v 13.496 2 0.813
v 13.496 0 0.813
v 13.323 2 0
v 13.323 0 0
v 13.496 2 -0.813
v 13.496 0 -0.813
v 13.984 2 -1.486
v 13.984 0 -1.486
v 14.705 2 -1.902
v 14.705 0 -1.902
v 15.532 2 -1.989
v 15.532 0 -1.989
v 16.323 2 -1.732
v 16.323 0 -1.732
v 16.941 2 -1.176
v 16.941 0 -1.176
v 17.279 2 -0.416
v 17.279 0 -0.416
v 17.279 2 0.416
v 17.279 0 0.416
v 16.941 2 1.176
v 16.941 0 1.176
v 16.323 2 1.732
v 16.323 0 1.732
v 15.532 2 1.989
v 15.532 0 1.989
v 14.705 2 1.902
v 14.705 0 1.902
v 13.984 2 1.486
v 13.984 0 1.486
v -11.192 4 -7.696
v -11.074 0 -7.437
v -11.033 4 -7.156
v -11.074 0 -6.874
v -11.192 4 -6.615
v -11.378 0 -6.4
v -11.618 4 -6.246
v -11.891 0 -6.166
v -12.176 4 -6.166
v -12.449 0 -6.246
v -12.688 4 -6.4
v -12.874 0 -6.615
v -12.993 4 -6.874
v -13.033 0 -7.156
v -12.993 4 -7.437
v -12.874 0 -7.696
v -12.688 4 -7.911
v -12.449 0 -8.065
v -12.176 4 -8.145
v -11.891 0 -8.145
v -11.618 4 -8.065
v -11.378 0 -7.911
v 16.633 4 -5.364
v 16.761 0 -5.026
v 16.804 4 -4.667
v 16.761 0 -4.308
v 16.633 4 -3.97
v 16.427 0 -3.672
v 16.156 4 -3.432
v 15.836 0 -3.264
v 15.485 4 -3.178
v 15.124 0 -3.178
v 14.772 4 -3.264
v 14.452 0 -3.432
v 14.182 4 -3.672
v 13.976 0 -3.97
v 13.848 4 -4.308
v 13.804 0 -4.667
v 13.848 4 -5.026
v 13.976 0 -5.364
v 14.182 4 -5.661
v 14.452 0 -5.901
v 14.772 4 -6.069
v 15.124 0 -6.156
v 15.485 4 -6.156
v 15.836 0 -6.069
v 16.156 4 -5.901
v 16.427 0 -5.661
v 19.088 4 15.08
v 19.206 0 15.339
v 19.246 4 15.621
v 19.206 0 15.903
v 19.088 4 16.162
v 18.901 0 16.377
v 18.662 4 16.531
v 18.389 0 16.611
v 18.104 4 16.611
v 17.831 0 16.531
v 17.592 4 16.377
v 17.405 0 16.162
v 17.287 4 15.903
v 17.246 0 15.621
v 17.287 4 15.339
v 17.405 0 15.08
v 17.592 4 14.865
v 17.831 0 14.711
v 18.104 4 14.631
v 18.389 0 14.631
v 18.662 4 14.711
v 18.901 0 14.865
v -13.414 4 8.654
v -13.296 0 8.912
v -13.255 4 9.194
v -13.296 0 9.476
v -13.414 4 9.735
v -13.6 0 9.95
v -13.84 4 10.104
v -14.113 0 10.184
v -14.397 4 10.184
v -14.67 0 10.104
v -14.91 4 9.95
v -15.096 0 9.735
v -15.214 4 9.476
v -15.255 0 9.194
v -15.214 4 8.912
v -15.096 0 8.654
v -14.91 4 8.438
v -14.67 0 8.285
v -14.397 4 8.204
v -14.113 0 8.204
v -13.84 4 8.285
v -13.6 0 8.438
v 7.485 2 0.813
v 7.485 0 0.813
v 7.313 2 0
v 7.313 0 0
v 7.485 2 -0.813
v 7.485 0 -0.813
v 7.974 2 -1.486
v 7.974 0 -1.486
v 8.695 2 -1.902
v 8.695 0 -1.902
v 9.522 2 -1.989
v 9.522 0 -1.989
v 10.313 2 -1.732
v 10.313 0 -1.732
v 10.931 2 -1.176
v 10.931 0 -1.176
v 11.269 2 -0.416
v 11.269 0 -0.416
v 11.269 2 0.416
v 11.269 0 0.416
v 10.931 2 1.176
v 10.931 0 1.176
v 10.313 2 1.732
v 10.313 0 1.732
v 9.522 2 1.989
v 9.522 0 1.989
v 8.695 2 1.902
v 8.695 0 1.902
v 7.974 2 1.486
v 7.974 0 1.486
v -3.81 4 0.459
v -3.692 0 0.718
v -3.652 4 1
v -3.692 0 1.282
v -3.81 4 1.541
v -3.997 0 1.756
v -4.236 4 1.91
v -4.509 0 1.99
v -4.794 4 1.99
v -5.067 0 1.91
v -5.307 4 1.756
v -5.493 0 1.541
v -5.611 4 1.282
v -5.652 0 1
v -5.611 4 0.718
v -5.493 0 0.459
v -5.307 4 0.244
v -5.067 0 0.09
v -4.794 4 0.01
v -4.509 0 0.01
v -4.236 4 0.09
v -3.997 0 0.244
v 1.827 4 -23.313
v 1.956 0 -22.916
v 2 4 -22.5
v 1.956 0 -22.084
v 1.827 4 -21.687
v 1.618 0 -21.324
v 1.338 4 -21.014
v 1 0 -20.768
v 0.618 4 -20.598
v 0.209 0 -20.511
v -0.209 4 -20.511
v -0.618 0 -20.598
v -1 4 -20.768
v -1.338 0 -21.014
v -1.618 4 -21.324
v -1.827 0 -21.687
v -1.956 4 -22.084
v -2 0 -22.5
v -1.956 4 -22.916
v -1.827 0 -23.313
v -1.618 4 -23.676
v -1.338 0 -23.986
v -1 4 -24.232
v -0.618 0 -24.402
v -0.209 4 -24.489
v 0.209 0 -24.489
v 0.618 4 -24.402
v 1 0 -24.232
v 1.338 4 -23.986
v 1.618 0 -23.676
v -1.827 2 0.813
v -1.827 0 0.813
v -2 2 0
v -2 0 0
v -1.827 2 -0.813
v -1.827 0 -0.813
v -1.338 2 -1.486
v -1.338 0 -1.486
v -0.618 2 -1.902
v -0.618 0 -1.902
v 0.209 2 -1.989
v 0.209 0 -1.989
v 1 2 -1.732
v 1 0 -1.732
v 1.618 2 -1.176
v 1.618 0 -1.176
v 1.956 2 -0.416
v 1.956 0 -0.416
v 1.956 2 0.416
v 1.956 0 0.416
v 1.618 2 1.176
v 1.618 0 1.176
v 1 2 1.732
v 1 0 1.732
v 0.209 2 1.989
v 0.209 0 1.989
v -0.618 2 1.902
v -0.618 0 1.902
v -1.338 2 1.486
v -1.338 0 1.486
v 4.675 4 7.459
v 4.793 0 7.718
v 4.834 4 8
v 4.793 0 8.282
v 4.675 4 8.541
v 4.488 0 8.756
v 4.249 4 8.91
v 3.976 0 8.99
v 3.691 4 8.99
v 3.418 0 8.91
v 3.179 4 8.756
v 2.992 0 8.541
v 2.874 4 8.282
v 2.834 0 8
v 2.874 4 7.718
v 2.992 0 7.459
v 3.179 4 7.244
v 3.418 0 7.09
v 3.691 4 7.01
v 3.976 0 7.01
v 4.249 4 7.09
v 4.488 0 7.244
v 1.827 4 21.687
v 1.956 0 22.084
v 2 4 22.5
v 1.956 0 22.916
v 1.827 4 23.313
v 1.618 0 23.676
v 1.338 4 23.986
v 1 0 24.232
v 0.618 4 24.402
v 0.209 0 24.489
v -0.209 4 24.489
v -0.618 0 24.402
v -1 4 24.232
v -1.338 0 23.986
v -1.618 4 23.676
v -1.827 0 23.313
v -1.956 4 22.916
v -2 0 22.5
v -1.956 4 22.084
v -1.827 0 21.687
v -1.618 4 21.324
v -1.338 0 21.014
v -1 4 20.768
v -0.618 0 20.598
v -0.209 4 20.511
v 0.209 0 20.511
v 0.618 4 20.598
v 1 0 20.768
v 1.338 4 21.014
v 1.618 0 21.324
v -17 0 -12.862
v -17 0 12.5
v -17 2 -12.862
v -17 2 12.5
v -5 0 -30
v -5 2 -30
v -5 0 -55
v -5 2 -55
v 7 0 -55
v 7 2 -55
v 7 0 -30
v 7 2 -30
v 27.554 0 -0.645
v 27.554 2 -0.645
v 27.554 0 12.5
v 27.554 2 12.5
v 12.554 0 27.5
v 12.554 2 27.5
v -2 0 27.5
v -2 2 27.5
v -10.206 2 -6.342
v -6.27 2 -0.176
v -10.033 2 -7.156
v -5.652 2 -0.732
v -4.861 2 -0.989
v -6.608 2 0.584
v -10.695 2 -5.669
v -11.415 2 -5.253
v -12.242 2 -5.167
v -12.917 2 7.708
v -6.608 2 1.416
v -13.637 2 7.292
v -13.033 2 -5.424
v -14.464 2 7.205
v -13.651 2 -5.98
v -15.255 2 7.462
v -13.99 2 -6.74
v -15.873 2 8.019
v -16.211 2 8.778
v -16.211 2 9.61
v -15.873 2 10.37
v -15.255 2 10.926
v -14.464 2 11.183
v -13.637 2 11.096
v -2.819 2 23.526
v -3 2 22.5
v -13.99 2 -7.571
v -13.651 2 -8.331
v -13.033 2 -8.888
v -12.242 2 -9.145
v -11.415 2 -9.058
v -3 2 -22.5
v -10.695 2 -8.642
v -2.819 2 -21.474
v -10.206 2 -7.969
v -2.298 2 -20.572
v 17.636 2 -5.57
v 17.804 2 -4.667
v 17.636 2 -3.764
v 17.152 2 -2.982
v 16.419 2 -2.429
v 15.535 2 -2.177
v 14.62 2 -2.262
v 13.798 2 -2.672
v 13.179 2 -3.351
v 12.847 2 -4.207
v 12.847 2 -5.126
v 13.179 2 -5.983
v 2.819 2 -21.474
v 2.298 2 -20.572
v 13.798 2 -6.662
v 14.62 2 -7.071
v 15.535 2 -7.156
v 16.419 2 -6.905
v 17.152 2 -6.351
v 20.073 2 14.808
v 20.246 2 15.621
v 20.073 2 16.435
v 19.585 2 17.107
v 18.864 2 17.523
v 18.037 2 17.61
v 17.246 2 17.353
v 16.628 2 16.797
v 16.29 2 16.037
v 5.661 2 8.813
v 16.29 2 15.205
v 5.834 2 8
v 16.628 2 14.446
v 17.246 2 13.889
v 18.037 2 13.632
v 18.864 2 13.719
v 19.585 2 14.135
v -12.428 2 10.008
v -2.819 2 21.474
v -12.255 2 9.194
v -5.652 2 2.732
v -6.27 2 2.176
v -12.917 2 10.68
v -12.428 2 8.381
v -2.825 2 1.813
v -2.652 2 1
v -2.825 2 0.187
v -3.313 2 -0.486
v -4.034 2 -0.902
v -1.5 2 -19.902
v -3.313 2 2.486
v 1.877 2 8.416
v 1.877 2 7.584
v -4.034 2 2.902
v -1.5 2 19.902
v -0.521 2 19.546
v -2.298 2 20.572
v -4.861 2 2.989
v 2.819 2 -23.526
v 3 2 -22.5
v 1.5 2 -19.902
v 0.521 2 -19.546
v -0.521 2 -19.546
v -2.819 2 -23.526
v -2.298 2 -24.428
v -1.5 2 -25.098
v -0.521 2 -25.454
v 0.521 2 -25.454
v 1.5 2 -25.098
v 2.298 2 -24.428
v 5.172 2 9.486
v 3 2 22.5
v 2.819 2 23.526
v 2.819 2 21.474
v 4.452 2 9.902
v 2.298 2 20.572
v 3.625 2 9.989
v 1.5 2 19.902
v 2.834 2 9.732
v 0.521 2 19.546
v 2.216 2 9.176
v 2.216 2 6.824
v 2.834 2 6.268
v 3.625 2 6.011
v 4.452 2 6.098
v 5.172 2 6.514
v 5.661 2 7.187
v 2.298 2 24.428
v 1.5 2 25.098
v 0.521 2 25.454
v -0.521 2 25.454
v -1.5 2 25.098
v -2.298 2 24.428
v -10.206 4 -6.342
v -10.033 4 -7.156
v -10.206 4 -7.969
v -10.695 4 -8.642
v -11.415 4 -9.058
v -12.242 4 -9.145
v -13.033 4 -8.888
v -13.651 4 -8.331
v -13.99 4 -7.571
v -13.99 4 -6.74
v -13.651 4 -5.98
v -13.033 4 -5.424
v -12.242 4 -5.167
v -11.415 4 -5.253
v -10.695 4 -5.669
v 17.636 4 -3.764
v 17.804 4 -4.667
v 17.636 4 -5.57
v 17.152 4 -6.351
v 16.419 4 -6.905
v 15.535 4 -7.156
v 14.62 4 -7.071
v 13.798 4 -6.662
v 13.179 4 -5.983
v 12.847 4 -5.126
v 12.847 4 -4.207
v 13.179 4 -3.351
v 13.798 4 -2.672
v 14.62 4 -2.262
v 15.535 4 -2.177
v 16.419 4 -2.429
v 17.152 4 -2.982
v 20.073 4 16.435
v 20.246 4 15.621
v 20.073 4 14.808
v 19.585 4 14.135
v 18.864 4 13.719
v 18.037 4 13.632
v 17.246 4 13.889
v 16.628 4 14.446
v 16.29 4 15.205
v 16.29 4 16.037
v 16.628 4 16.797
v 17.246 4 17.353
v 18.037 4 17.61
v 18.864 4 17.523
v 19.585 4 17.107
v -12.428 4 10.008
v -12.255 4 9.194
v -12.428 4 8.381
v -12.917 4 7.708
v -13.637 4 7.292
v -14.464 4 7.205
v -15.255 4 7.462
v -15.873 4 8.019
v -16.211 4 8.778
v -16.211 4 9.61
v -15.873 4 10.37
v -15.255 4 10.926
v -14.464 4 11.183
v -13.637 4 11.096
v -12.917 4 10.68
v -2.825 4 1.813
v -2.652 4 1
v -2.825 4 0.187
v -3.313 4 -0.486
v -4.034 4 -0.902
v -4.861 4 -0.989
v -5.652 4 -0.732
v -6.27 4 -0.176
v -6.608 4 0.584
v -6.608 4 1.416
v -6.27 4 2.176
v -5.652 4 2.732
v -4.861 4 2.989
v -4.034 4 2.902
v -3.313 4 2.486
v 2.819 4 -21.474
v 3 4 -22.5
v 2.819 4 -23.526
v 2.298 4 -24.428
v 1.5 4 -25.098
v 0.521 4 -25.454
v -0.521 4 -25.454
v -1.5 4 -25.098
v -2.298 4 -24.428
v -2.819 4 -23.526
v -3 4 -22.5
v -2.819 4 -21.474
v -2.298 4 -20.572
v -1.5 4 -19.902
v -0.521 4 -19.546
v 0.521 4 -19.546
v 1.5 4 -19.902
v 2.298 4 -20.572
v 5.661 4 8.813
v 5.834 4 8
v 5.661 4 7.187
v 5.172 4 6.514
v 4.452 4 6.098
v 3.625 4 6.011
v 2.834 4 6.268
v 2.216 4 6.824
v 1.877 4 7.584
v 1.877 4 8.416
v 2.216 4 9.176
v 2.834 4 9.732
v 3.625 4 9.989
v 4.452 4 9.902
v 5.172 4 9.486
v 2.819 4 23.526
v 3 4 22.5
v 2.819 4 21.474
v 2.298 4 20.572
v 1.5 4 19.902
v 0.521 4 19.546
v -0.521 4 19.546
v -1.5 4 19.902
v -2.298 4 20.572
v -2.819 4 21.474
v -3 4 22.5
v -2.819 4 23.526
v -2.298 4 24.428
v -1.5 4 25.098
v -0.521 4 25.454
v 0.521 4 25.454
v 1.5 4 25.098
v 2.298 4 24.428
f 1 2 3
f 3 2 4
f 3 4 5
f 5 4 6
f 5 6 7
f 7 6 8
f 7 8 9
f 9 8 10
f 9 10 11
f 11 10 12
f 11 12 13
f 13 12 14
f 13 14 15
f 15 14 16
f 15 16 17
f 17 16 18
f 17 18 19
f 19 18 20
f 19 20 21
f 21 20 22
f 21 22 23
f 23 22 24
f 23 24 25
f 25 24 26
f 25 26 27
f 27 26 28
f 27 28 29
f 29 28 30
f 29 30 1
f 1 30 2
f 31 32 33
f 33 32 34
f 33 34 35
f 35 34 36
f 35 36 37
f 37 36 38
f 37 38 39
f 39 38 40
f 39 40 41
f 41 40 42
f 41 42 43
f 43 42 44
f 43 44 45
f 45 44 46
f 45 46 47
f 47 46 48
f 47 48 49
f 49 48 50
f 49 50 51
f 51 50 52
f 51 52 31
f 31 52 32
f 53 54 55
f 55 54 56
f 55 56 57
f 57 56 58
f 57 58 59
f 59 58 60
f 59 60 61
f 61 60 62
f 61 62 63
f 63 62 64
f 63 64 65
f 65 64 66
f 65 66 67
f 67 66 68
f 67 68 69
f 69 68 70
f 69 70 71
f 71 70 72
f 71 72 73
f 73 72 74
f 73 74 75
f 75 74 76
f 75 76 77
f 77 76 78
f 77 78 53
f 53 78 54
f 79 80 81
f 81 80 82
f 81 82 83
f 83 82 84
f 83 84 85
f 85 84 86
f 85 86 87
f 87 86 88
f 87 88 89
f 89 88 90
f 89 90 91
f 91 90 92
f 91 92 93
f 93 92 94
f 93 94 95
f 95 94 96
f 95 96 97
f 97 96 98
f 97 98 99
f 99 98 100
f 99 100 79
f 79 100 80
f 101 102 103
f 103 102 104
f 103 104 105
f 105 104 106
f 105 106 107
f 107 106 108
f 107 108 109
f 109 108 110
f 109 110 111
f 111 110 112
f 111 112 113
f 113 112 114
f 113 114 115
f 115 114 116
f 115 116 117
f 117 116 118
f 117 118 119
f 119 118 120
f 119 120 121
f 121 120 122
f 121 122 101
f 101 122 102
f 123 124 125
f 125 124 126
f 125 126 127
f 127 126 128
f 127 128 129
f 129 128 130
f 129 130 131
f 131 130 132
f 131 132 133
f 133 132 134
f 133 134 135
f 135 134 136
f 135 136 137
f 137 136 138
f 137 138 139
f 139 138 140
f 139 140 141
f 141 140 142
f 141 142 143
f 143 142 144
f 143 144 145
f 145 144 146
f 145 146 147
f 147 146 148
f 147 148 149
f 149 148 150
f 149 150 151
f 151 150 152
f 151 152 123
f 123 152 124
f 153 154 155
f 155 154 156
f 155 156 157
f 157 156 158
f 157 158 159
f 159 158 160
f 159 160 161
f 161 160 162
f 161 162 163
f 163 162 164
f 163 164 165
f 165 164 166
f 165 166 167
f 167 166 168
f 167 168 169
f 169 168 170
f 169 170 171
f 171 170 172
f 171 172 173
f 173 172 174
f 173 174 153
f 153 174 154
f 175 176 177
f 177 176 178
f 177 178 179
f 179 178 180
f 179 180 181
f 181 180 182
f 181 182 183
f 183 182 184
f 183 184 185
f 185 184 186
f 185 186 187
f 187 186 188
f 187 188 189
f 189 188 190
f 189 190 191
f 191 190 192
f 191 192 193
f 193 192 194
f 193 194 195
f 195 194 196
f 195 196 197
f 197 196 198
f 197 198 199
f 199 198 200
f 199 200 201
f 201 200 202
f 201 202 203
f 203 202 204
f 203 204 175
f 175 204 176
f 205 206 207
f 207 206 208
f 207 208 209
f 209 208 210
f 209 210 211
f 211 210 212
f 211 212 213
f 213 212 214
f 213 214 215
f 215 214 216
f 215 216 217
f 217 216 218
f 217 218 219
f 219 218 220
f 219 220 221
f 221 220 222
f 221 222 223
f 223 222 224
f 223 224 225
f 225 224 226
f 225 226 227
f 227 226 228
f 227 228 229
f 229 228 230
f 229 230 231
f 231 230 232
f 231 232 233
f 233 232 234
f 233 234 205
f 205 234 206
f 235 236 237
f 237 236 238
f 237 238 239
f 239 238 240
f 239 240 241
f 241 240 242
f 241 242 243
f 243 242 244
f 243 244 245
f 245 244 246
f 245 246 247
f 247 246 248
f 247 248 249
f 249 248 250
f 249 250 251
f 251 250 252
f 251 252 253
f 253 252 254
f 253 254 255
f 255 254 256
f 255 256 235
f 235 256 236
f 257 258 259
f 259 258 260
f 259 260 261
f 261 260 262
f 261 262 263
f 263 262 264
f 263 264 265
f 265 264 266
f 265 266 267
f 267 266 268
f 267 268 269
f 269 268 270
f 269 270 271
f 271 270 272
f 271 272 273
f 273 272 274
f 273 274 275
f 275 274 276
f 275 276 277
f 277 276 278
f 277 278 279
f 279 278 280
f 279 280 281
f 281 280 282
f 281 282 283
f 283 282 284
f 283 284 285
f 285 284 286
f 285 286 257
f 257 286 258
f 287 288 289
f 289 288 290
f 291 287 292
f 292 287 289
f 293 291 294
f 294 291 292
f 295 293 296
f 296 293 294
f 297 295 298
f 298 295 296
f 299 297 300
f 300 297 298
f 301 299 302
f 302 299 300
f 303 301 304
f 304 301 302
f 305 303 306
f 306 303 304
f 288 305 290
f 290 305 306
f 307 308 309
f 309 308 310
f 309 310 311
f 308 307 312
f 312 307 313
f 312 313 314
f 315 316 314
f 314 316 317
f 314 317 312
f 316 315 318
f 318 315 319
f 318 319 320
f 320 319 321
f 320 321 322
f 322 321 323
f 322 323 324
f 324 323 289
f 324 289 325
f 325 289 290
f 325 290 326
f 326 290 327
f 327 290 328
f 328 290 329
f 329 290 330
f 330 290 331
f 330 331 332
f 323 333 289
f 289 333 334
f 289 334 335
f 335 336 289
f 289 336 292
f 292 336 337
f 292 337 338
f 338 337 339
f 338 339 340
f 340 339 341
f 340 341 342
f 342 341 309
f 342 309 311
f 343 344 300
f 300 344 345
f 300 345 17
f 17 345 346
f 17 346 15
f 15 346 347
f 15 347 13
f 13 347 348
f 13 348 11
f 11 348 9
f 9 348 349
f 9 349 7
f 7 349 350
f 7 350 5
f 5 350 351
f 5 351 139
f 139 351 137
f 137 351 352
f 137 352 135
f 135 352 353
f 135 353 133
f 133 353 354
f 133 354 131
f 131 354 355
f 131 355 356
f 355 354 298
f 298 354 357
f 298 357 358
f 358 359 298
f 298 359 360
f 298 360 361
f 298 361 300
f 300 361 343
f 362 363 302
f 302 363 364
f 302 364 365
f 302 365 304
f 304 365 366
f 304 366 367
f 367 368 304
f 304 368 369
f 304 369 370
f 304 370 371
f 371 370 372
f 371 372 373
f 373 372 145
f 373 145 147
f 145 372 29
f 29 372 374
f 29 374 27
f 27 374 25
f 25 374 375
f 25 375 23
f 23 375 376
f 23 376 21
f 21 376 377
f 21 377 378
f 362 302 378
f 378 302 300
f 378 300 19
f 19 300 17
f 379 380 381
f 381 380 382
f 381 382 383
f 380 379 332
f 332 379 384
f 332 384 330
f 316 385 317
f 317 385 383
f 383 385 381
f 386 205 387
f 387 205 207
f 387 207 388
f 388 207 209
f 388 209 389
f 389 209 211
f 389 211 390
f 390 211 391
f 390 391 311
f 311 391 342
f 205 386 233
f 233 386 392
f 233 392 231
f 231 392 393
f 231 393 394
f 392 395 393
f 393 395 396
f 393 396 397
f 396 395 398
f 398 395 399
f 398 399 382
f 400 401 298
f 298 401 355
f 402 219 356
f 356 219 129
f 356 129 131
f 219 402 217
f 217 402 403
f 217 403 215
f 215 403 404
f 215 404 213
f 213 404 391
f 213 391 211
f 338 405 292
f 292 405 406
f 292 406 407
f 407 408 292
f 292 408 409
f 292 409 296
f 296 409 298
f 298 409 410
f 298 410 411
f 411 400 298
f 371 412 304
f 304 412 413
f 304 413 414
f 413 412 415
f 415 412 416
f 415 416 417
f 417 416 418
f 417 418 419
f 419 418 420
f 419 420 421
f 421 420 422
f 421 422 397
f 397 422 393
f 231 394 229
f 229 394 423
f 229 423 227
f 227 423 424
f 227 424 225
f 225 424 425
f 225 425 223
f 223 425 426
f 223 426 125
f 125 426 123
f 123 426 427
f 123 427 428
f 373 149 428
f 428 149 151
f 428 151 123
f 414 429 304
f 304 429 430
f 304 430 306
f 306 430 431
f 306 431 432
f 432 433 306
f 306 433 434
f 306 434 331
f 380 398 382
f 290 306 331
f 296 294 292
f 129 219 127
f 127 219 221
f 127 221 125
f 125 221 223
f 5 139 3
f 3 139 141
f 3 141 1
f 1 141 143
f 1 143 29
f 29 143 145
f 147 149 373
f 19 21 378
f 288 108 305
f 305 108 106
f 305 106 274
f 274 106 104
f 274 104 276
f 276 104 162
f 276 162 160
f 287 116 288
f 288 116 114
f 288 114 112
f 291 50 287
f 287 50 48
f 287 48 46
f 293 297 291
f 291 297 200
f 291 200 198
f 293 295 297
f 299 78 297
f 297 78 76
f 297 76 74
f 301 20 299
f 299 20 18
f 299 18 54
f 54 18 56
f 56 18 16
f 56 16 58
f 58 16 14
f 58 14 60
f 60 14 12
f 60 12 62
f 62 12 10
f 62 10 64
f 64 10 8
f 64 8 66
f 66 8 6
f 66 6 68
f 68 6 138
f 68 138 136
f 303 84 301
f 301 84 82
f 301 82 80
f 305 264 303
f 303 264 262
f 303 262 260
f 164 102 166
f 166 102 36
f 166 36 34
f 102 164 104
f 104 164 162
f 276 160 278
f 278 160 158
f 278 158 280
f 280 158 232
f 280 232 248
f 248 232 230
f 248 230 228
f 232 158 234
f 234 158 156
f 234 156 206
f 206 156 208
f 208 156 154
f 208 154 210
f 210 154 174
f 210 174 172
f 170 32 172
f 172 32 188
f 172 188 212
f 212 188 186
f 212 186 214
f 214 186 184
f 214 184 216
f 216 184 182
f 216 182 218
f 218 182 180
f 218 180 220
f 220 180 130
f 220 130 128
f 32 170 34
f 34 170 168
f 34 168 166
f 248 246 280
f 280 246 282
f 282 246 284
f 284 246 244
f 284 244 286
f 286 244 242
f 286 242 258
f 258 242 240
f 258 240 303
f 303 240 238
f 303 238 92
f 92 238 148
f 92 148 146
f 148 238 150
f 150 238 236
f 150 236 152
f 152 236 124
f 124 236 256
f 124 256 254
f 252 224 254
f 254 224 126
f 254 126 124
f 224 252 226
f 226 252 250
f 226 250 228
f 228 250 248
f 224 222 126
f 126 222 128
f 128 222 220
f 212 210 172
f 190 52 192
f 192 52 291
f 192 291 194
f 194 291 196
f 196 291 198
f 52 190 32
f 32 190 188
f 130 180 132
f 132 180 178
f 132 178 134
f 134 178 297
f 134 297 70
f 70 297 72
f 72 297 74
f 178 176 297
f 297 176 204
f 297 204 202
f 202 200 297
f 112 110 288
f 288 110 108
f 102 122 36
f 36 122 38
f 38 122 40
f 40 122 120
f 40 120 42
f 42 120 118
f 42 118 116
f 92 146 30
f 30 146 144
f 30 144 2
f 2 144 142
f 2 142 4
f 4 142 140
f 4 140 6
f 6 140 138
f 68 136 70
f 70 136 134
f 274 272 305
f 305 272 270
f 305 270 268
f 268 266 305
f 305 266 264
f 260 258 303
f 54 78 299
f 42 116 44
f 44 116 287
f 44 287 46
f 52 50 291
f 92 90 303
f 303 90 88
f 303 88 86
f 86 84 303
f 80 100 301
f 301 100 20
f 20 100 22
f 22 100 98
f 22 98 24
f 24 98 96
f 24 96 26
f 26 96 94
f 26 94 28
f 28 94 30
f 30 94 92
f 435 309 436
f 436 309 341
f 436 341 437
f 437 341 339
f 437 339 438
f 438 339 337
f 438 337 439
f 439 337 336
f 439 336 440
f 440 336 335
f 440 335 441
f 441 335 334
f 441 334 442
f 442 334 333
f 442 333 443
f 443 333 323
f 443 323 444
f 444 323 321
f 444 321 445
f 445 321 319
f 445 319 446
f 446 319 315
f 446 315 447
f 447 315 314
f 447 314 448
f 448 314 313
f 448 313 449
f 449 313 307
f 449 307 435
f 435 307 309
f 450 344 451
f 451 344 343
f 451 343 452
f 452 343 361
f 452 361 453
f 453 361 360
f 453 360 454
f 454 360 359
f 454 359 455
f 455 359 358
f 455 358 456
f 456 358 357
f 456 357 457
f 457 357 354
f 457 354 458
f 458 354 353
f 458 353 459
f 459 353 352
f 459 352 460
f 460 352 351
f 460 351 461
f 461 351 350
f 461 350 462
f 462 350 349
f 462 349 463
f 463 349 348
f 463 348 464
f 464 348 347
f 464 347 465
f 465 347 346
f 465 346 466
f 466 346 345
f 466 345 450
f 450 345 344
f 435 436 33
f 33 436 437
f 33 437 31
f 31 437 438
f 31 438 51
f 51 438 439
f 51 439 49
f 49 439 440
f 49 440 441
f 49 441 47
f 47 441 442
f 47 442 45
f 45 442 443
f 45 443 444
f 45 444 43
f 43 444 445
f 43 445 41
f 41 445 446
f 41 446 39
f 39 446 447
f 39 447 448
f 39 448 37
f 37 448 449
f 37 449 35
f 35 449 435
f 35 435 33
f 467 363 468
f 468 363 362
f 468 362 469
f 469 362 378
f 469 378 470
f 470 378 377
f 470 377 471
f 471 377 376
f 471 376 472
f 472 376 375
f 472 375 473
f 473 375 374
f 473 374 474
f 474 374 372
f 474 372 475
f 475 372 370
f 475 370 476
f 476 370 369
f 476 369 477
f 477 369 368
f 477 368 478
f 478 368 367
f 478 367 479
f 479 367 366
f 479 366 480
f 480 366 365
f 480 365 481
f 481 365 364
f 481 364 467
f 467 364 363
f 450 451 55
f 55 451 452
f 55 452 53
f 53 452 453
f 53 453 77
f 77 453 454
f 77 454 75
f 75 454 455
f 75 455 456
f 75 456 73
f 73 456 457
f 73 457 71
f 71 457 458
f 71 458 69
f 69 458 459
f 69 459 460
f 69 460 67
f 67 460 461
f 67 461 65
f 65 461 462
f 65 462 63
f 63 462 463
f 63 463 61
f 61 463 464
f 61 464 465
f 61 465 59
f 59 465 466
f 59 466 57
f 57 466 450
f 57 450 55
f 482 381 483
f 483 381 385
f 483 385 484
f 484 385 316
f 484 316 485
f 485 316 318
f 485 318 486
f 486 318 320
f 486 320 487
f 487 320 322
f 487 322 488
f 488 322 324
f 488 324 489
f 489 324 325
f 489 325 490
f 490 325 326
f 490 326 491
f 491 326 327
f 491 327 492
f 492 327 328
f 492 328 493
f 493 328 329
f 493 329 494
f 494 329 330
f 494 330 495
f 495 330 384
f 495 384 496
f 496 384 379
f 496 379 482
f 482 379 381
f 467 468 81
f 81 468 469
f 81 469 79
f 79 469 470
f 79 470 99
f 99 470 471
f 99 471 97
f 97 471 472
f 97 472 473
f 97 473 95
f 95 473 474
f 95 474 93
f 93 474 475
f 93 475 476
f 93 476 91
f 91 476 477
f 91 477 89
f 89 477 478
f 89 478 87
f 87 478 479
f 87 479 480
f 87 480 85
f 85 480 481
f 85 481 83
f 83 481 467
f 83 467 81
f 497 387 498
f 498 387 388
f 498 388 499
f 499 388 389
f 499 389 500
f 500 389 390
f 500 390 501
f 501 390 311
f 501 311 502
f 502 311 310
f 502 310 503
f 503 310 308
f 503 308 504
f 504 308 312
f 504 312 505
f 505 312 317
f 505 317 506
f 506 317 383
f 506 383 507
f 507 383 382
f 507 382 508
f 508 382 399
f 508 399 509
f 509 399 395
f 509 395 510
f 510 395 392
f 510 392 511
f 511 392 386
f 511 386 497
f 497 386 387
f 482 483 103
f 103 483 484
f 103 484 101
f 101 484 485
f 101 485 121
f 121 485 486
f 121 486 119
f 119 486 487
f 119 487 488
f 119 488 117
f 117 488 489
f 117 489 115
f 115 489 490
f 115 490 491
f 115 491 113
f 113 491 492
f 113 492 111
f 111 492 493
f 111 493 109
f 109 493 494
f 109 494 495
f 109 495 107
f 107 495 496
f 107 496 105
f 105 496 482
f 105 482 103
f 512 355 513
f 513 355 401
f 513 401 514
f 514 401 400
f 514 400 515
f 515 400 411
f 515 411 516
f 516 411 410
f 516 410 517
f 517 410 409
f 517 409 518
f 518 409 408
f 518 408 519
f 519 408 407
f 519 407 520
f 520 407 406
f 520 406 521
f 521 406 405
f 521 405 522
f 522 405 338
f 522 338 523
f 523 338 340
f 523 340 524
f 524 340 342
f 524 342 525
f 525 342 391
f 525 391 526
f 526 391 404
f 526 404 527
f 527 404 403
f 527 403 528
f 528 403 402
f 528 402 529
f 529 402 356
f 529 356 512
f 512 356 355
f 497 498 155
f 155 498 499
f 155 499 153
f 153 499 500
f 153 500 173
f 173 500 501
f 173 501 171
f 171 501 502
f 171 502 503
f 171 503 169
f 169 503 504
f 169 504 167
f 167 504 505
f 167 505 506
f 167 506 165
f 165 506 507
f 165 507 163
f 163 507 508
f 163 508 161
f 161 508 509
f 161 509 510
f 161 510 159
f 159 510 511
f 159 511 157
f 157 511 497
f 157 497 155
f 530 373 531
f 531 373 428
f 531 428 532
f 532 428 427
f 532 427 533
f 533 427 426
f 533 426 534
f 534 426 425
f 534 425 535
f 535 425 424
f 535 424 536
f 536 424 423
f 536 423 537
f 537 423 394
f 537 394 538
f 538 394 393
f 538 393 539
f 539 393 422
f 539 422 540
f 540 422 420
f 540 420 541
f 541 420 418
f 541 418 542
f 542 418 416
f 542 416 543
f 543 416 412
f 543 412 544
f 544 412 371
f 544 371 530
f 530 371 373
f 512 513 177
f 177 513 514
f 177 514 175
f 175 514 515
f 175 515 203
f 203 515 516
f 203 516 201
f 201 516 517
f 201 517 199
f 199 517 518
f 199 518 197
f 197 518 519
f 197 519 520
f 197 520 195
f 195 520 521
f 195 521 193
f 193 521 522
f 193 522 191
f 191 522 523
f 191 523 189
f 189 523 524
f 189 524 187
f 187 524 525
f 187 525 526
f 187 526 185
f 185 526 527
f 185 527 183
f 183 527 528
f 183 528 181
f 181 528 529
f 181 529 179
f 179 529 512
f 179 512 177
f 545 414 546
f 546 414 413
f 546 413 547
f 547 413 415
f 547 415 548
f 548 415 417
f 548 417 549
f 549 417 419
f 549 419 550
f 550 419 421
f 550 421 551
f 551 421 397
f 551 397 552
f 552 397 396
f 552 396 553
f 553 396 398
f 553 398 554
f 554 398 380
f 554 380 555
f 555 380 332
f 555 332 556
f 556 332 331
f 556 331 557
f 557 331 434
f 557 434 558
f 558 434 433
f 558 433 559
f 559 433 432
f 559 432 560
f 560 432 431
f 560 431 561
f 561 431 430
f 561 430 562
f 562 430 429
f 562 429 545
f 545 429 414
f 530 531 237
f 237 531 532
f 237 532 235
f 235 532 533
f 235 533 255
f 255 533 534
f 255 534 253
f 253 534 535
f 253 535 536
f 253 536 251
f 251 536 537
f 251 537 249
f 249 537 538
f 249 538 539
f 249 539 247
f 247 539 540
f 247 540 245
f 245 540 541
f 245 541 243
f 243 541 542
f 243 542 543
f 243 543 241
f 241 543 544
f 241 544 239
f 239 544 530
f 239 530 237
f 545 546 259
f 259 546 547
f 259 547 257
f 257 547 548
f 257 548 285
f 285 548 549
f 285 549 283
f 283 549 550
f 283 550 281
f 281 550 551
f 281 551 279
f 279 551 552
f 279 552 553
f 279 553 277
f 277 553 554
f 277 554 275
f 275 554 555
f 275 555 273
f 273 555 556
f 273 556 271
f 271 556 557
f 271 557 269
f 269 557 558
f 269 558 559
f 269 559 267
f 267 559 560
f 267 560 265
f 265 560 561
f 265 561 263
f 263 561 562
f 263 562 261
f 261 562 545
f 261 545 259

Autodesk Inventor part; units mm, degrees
ref_plane "YZ Plane" through (0, 0, 0) normal (1, 0, 0) x (0, 1, 0)
ref_plane "XZ Plane" through (0, 0, 0) normal (0, 1, 0) x (-1, 0, 0)
sketch "Szkic1" plane through (0, 0, 0) normal (0, 1, 0) x (-1, 0, 0)
  circle A0 centre (0, 22.5) radius 2
  circle A1 centre (0, -22.5) radius 2
  circle A2 centre (0, 22.5) radius 11.25 construction
  circle A3 centre (0, -22.5) radius 11.25 construction
  circle A4 centre (0, 0) radius 11.25
  circle A5 centre (-15.3043, -4.6667) radius 4.75 construction
  circle A6 centre (-15.3043, -4.6667) radius 12.25 construction
  circle A7 centre (-18.2464, 15.6211) radius 8.25 construction
  circle A8 centre (-18.2464, 15.6211) radius 1
  circle A9 centre (-15.3043, -4.6667) radius 1.5
  line L0 (17, 55) -> (-27.5543, 55)
  line L1 (-27.5543, 55) -> (-27.5543, -55)
  line L2 (-27.5543, -55) -> (17, -55)
  line L3 (17, -55) -> (17, 55)
  circle A10 centre (0, 22.5) radius 17 construction
  circle A11 centre (0, -22.5) radius 17 construction
  circle A12 centre (0, 0) radius 14.5 construction
  line L4 (12.5, 7.3485) -> (12.5, -7.3485) construction
  line L5 (-12.5, 7.3485) -> (-12.5, -7.3485) construction
  circle A13 centre (12.0332, -7.1556) radius 8.25 construction
  circle A14 centre (12.0332, -7.1556) radius 2.75 construction
  circle A15 centre (14.255, 9.1942) radius 8.25 construction
  circle A16 centre (14.255, 9.1942) radius 1
  circle A17 centre (12.0332, -7.1556) radius 1
  circle A18 centre (-3.8336, 8) radius 8.25 construction
  circle A19 centre (-3.8336, 8) radius 1
  circle A20 centre (-3.8336, 8) radius 2.75 construction
  circle A21 centre (4.6517, 1) radius 8.25 construction
  circle A22 centre (4.6517, 1) radius 1
  circle A23 centre (4.6517, 1) radius 2.75 construction
  line L6 (-27.5543, -0.6454) -> (-7, -30)
  line L7 (-7, -30) -> (-7, -64)
  line L8 (-7, -64) -> (5, -64)
  line L9 (5, -64) -> (5, -30)
  line L10 (5, -30) -> (17, -12.8622)
  line L11 (17, 12.5) -> (2, 27.5)
  line L12 (2, 27.5) -> (-12.5543, 27.5)
  line L13 (-12.5543, 27.5) -> (-27.5543, 12.5)
  circle A24 centre (0, 0) radius 2
  circle A25 centre (-9.3126, 0) radius 11.25 construction
  circle A26 centre (-9.3126, 0) radius 2
  circle A27 centre (-15.3227, 0) radius 11.25 construction
  circle A28 centre (-15.3227, 0) radius 2
  point P0 (-7, -55)
  point P1 (5, -55)
  dimension "d0" = 4
  dimension "d1" = 4
  dimension "d2" = 22.5
  dimension "d3" = 22.5
  dimension "d4" = 22.5
  dimension "d5" = 22.5
  dimension "d6" = 22.5
  dimension "d7" = 9.5
  dimension "d8" = 24.5
  dimension "d9" = 16.5
  dimension "d10" = 2
  dimension "d11" = 3
  dimension "d12" = 34
  dimension "d13" = 34
  dimension "d14" = 29
  dimension "d15" = 25
  dimension "d16" = 17
  dimension "d17" = 55
  dimension "d18" = 110
  dimension "d21" = 16.5
  dimension "d22" = 5.5
  dimension "d23" = 16.5
  dimension "d24" = 45
  dimension "d26" = 2
  dimension "d27" = 2
  dimension "d28" = 16.5
  dimension "d29" = 2
  dimension "d30" = 5.5
  dimension "d33" = 16.5
  dimension "d34" = 27.5543
  dimension "d35" = 2
  dimension "d36" = 5.5
  dimension "d39" = 12
  dimension "d40" = 12
  dimension "d41" = 0
  dimension "d42" = 9
  dimension "d43" = 145
  dimension "d44" = 145
  dimension "d45" = 25
  dimension "d46" = 45
  dimension "d47" = 45
  dimension "d48" = 15
  dimension "d49" = 5
  dimension "d50" = 0
  dimension "d63" = 1
  dimension "d64" = 8
  dimension "d65" = 4
  dimension "d66" = 22.5
  dimension "d67" = 0
  dimension "d68" = 4
  dimension "d69" = 22.5
  dimension "d70" = 0
  dimension "d71" = 4
ref_plane "Płaszczyzna konstrukcyjna1" through (0, 2, 0) normal (0, 1, 0) x (1, 0, 0)
sketch "Szkic2" plane through (0, 2, 0) normal (0, 1, 0) x (1, 0, 0)
  circle A0 centre (0, -22.5) radius 2
  circle A1 centre (-14.255, -9.1942) radius 1
  circle A2 centre (3.8336, -8) radius 1
  circle A3 centre (-4.6517, -1) radius 1
  circle A4 centre (15.3043, 4.6667) radius 1.5
  circle A5 centre (0, 22.5) radius 2
  circle A6 centre (-12.0332, 7.1556) radius 1
  circle A7 centre (18.2464, -15.6211) radius 1
  circle A8 centre (0, -22.5) radius 2 projected
  circle A9 centre (-14.255, -9.1942) radius 1 projected
  circle A10 centre (3.8336, -8) radius 1 projected
  circle A11 centre (-4.6517, -1) radius 1 projected
  circle A12 centre (15.3043, 4.6667) radius 1.5 projected
  circle A13 centre (18.2464, -15.6211) radius 1 projected
  circle A14 centre (0, 22.5) radius 2 projected
  circle A15 centre (-12.0332, 7.1556) radius 1 projected
  circle A16 centre (0, -22.5) radius 3
  circle A17 centre (-14.255, -9.1942) radius 2
  circle A18 centre (3.8336, -8) radius 2
  circle A19 centre (-4.6517, -1) radius 2
  circle A20 centre (18.2464, -15.6211) radius 2
  circle A21 centre (15.3043, 4.6667) radius 2.5
  circle A22 centre (0, 22.5) radius 3
  circle A23 centre (-12.0332, 7.1556) radius 2
  point P0 (0, 0)
  dimension "d53" = 1
  dimension "d54" = 1
  dimension "d55" = 1
  dimension "d56" = 1
  dimension "d57" = 1
  dimension "d58" = 1
  dimension "d59" = 1
  dimension "d60" = 1
extrude "Wyciągnięcie proste6" add sketch "Szkic1" along normal blind 2 contours A4 A26 | L3 L10 L9 L2 L7 L6 L1 L13 L12 L11 picked at (-5.8126, -3.4695)
extrude "Wyciągnięcie proste7" add sketch "Szkic2" along normal blind 2
